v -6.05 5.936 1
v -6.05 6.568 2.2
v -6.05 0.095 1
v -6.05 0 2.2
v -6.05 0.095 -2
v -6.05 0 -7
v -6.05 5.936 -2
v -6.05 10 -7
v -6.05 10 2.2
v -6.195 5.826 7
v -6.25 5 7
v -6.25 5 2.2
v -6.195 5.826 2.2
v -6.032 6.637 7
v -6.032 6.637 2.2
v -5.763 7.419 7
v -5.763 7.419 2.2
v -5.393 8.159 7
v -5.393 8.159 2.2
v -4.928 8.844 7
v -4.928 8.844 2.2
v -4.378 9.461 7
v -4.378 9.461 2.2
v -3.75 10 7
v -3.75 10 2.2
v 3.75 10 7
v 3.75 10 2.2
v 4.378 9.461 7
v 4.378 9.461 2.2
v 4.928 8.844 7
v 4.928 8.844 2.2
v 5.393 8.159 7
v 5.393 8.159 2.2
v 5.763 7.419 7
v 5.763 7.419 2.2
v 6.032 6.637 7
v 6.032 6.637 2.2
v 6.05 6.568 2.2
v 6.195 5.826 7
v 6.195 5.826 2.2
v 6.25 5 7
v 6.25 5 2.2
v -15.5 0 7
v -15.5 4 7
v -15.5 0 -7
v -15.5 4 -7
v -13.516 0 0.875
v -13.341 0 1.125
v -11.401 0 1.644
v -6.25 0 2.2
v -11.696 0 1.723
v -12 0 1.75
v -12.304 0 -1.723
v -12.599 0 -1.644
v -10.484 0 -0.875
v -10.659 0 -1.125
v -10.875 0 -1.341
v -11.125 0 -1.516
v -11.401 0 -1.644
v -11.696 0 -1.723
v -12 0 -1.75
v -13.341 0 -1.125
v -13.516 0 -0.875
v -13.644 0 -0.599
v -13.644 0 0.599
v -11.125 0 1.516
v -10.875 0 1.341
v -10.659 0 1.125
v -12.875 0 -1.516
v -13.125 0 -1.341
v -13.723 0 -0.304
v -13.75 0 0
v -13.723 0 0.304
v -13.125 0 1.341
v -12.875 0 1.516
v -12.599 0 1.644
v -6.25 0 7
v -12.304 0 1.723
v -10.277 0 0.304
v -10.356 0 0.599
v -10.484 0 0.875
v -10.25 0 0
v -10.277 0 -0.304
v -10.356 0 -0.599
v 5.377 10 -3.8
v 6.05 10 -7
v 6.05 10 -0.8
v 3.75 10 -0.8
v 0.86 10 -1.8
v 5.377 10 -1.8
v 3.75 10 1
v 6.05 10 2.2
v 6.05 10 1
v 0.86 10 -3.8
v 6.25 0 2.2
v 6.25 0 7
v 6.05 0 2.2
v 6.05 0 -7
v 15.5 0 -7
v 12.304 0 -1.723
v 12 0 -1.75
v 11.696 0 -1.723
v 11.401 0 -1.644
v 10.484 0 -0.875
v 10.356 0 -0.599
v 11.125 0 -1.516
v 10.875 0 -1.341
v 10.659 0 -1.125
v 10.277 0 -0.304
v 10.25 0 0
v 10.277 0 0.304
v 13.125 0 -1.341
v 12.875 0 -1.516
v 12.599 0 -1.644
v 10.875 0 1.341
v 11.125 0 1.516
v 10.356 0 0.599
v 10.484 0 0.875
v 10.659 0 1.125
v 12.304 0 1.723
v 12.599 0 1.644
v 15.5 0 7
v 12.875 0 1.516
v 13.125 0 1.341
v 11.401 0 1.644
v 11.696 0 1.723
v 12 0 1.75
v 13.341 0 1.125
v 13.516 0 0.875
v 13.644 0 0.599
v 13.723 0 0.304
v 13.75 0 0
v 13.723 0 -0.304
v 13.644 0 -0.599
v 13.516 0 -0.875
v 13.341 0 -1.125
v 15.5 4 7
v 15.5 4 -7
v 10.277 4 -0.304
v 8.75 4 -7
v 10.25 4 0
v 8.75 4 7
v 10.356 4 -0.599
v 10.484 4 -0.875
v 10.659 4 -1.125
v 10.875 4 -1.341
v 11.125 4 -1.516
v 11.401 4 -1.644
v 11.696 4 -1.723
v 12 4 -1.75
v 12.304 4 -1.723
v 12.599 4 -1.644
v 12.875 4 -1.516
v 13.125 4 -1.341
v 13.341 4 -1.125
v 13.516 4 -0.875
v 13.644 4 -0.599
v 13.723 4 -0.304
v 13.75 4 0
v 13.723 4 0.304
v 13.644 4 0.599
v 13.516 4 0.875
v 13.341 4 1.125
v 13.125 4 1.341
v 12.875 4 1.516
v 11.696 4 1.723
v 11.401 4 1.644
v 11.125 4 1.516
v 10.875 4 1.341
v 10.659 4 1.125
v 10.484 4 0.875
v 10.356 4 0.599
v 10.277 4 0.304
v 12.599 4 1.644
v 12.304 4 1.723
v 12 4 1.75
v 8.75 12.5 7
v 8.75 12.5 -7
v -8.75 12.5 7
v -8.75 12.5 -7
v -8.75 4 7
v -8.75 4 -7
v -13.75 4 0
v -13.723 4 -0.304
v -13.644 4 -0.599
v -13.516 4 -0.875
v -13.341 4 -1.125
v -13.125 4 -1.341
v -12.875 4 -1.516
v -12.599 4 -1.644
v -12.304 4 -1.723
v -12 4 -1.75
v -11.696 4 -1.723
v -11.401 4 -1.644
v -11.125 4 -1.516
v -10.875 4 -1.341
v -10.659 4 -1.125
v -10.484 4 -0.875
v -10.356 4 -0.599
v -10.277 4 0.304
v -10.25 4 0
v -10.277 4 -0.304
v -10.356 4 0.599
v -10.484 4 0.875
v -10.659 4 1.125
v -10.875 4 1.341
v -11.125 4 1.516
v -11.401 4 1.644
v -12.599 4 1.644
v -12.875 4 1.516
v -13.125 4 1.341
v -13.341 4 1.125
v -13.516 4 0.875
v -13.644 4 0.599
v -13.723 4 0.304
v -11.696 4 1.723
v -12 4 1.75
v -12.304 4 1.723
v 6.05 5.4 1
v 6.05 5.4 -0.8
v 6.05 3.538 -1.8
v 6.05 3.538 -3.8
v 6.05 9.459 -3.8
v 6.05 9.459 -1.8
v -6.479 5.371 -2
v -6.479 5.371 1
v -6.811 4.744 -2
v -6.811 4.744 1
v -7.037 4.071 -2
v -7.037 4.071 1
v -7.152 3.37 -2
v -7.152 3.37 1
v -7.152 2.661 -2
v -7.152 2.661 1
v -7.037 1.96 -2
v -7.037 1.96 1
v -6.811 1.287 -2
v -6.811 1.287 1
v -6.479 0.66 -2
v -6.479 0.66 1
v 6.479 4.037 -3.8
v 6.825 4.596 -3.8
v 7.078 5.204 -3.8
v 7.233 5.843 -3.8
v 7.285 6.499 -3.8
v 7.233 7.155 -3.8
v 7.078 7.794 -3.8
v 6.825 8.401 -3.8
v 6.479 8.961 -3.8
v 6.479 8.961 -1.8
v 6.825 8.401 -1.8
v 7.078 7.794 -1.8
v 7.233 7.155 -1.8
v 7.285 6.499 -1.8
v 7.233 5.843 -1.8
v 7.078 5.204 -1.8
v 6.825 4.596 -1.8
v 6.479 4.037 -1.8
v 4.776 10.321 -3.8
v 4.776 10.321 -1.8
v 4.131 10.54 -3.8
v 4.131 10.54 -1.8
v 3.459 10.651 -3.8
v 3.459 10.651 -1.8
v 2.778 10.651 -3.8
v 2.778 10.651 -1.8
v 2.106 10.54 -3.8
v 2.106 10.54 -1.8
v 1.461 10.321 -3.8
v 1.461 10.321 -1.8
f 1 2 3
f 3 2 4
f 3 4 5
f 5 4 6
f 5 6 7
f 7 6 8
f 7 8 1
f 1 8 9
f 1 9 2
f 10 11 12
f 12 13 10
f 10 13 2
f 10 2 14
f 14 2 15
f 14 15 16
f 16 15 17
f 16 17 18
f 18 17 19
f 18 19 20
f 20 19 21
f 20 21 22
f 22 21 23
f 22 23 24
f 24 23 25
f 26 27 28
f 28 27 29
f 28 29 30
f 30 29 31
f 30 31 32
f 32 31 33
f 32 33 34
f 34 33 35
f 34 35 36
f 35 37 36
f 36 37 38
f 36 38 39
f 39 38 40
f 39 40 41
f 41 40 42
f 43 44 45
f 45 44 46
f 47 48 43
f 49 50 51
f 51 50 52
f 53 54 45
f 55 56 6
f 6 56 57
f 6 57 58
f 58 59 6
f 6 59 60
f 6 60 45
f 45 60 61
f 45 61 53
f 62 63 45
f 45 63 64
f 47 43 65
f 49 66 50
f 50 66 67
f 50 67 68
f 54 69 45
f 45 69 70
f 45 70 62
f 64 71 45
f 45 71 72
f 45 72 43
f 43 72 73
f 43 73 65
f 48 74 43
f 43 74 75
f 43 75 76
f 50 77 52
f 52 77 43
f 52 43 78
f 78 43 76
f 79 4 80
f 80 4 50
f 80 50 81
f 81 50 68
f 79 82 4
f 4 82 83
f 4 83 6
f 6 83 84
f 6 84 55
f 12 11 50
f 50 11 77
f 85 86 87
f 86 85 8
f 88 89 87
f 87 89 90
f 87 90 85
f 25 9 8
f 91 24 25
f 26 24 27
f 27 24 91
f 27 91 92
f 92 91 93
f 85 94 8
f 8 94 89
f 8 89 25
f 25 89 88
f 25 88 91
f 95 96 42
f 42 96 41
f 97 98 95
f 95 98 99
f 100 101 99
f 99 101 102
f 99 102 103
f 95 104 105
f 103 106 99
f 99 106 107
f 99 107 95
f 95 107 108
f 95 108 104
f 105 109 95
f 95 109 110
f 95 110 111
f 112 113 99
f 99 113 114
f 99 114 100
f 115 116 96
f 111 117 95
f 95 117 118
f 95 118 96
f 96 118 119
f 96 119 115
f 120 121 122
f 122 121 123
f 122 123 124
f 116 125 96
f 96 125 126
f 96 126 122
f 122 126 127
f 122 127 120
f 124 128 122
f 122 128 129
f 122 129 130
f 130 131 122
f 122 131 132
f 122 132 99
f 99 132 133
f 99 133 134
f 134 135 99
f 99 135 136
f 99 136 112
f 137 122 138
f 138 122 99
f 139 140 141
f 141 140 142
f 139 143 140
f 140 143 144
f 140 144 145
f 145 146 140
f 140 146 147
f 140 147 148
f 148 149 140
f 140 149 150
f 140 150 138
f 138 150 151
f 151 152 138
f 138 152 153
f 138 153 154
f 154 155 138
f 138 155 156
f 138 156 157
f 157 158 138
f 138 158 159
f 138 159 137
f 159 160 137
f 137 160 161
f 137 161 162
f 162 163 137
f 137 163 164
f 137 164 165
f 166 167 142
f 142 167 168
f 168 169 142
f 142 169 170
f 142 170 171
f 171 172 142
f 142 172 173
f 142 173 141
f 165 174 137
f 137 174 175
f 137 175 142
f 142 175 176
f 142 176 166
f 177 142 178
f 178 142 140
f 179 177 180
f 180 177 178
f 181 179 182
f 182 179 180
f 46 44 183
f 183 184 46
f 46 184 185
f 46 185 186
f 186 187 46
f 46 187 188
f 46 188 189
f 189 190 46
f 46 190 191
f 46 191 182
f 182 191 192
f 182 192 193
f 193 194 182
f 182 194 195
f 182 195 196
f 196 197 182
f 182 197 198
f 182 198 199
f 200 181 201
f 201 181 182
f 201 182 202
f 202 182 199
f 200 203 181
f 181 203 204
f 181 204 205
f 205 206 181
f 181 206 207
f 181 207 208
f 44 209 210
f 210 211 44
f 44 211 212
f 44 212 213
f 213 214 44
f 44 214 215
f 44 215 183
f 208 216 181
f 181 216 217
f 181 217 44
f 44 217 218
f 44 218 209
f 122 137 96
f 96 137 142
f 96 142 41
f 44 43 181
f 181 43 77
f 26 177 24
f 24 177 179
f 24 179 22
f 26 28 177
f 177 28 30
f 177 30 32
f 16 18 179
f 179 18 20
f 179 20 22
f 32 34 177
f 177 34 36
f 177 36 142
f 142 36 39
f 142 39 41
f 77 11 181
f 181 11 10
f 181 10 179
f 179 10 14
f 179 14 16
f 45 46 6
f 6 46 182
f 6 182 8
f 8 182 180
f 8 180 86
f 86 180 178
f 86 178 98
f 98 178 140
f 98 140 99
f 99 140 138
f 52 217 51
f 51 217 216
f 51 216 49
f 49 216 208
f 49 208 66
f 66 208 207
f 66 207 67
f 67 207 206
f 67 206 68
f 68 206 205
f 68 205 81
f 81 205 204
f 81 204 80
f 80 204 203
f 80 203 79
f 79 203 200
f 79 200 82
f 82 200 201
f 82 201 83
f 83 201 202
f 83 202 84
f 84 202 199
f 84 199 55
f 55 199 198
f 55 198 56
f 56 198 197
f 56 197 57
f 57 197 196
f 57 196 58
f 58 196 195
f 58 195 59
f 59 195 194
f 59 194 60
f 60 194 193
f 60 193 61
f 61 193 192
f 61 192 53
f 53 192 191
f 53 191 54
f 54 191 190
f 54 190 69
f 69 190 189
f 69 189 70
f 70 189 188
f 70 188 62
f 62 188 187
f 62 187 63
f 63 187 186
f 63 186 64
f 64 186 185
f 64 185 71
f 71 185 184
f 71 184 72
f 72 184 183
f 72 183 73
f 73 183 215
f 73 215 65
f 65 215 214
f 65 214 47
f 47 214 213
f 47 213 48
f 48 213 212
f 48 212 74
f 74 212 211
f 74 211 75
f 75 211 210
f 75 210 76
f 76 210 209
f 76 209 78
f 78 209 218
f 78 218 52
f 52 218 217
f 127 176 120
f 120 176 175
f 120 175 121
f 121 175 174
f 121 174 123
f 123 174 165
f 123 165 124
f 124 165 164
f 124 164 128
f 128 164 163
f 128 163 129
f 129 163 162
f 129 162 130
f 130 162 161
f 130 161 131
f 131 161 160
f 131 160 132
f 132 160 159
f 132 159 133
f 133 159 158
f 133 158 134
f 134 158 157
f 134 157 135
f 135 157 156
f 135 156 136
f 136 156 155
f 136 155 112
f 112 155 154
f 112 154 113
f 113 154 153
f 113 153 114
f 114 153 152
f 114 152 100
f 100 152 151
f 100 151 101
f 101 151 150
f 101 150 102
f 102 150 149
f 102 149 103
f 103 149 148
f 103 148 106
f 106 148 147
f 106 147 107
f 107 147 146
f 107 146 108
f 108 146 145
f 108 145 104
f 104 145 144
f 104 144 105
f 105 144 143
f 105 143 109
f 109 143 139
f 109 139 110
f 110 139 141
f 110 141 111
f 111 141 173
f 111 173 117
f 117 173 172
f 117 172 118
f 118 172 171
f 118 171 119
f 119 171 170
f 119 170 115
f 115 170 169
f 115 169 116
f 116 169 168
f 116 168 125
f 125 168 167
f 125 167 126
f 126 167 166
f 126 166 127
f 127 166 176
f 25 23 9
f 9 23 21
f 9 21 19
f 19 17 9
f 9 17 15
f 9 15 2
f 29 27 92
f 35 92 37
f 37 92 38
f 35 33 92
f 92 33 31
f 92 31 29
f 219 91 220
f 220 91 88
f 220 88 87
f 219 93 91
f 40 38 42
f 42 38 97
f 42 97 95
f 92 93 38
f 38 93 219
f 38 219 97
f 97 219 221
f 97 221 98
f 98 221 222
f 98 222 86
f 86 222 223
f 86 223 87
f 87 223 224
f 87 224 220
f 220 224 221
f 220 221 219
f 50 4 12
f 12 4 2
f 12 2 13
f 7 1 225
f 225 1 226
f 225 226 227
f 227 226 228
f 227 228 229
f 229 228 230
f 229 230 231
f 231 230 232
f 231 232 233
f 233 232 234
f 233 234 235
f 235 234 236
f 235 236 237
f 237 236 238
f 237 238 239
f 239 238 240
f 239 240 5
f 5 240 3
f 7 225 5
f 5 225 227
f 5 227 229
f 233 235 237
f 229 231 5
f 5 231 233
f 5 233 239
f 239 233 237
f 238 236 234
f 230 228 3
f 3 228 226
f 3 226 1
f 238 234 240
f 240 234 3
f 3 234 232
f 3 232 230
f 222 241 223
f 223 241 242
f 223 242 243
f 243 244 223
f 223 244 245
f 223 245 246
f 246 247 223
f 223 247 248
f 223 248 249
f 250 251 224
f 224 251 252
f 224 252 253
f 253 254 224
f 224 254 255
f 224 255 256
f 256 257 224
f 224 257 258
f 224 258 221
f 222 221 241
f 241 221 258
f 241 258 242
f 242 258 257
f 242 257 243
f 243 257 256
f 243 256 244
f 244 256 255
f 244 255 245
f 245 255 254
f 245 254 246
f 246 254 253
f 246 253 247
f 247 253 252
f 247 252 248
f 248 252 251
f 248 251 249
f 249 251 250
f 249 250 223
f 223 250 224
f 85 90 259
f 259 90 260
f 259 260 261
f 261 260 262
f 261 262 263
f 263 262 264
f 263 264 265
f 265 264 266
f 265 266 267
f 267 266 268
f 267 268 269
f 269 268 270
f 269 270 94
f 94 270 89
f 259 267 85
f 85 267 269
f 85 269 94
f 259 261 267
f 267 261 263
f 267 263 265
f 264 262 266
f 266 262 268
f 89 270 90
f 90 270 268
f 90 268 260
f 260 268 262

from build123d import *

# Parameters (mm, degrees)
BOSS_EXTRU_1_DEPTH      = 7
ENL_V_MAT_EXTRU_1_DEPTH = 1.5
ESQUISSE3_R             = 1.75
ENL_V_MAT_EXTRU_2_DEPTH = 8.5
ESQUISSE4_W             = 12.5
ESQUISSE4_H             = 5
ENL_V_MAT_EXTRU_3_DEPTH = 9.2
BOSS_EXTRU_2_START      = 1.2
BOSS_EXTRU_2_DEPTH      = 1.8
BOSS_EXTRU_3_REACH      = 23.107
ESQUISSE8_W             = 0.2
ESQUISSE8_H             = 9.2
ESQUISSE6_R             = 4.379651067
ENL_V_MAT_EXTRU_4_DEPTH = 3
ENL_V_START             = 1
ESQUISSE7_R             = 4.166394869
ENL_V_MAT_EXTRU_5_DEPTH = 2
BOSS_EXTRU_4_START      = 1.5
ESQUISSE9_R             = 1.75
BOSS_EXTRU_4_DEPTH      = 1.5


with BuildPart() as part:
    # Esquisse1 → Boss.-Extru.1 (new, symmetric)
    with BuildSketch(Plane.XY):
        with BuildLine():
            Line((-15.5, 0), (-6.25, 0))
            Line((-6.25, 0), (-6.25, 5))
            ThreePointArc((-6.25, 5), (-5.590169944, 7.795084972), (-3.75, 10))
            Line((-3.75, 10), (3.75, 10))
            ThreePointArc((3.75, 10), (5.590169944, 7.795084972), (6.25, 5))
            Line((6.25, 5), (6.25, 0))
            Line((6.25, 0), (15.5, 0))
            Line((15.5, 0), (15.5, 4))
            Line((15.5, 4), (8.75, 4))
            Line((8.75, 4), (8.75, 12.5))
            Line((8.75, 12.5), (-8.75, 12.5))
            Line((-8.75, 12.5), (-8.75, 4))
            Line((-8.75, 4), (-15.5, 4))
            Line((-15.5, 4), (-15.5, 0))
        make_face()
    extrude(amount=BOSS_EXTRU_1_DEPTH, both=True)

    # Esquisse2 → Enlèv. mat.-Extru.1 (cut)
    with BuildSketch(Plane(origin=(0, 4, 0), x_dir=(1, 0, 0), z_dir=(0, 1, 0))):
        Polygon((-9.1, -1.674315781), (-9.1, 1.674315781), (-12, 3.348631561), (-14.9, 1.674315781), (-14.9, -1.674315781), (-12, -3.348631561), align=None)
        Polygon((9.1, -1.674315781), (12, -3.348631561), (14.9, -1.674315781), (14.9, 1.674315781), (12, 3.348631561), (9.1, 1.674315781), align=None)
    extrude(amount=-ENL_V_MAT_EXTRU_1_DEPTH, mode=Mode.SUBTRACT)

    # Esquisse3 → Enlèv. mat.-Extru.2 (cut)
    with BuildSketch(Plane(origin=(0, 2.5, 0), x_dir=(1, 0, 0), z_dir=(0, 1, 0))):
        with Locations(Location((-12, 0, 0), (0, 0, 270))):
            Circle(ESQUISSE3_R)
        with Locations(Location((12, 0, 0), (0, 0, 270))):
            Circle(ESQUISSE3_R)
    extrude(amount=-ENL_V_MAT_EXTRU_2_DEPTH, mode=Mode.SUBTRACT)

    # Esquisse4 → Enlèv. mat.-Extru.3 (cut)
    with BuildSketch(Plane(origin=(0, 0, -7), x_dir=(-1, 0, 0), z_dir=(0, 0, -1))):
        with Locations((0, 7.5)):
            Rectangle(ESQUISSE4_W, ESQUISSE4_H)
    extrude(amount=-ENL_V_MAT_EXTRU_3_DEPTH, mode=Mode.SUBTRACT)

    # Esquisse5 → Boss.-Extru.2 (add)
    with BuildSketch(Plane(origin=(0, 0, 2.2), x_dir=(-1, 0, 0), z_dir=(0, 0, -1)).offset(BOSS_EXTRU_2_START)):
        Polygon((-3.75, 10), (-6.25, 5), (-6.25, 10), align=None)
    extrude(amount=BOSS_EXTRU_2_DEPTH)

    # Boss.-Extru.3: up to this face of the body (flat: up to its plane)
    boss_extru_3_end = Plane(part.part.faces().sort_by_distance((-0.153583618, 10, -0.75665529))[0])
    # Esquisse8 → Boss.-Extru.3 (add, up to the picked face)
    with BuildSketch(Plane.XZ, mode=Mode.PRIVATE) as boss_extru_3_sk1:
        with Locations((6.15, -2.4)):
            Rectangle(ESQUISSE8_W, ESQUISSE8_H)
    boss_extru_3_tool1 = split(extrude(boss_extru_3_sk1.sketch, amount=-BOSS_EXTRU_3_REACH, mode=Mode.PRIVATE), bisect_by=boss_extru_3_end, keep=Keep.BOTH, mode=Mode.PRIVATE)
    # Esquisse8 → Boss.-Extru.3 (add, up to the picked face)
    with BuildSketch(Plane.XZ, mode=Mode.PRIVATE) as boss_extru_3_sk2:
        with Locations((-6.15, -2.4)):
            Rectangle(ESQUISSE8_W, ESQUISSE8_H)
    boss_extru_3_tool2 = split(extrude(boss_extru_3_sk2.sketch, amount=-BOSS_EXTRU_3_REACH, mode=Mode.PRIVATE), bisect_by=boss_extru_3_end, keep=Keep.BOTH, mode=Mode.PRIVATE)
    add(boss_extru_3_tool1.solids().sort_by(Axis((6.15, 0, -2.4), (0, 1, 0)))[0])
    add(boss_extru_3_tool2.solids().sort_by(Axis((-6.15, 0, -2.4), (0, 1, 0)))[0])

    # Esquisse6 → Enlèv. mat.-Extru.4 (cut)
    with BuildSketch(Plane.XY.offset(1)):
        with Locations((-2.786650878, 3.015494516)):
            Circle(ESQUISSE6_R)
    extrude(amount=-ENL_V_MAT_EXTRU_4_DEPTH, mode=Mode.SUBTRACT)

    # Esquisse7 → Enlèv. mat.-Extru.5 (cut)
    with BuildSketch(Plane(origin=(0, 0, -0.8), x_dir=(-1, 0, 0), z_dir=(0, 0, -1)).offset(ENL_V_START)):
        with Locations((-3.11839503, 6.498808114)):
            Circle(ESQUISSE7_R)
    extrude(amount=ENL_V_MAT_EXTRU_5_DEPTH, mode=Mode.SUBTRACT)

    # Esquisse9 → Boss.-Extru.4 (add)
    # profile 1 of 2: a face of its own
    with BuildSketch(Plane(origin=(0, 2.5, 0), x_dir=(1, 0, 0), z_dir=(0, 1, 0)).offset(BOSS_EXTRU_4_START)):
        Polygon((9.1, 1.674315781), (9.1, -1.674315781), (12, -3.348631561), (14.9, -1.674315781), (14.9, 1.674315781), (12, 3.348631561), align=None)
        with Locations(Location((12, 0, 0), (0, 0, 270))):
            Circle(ESQUISSE9_R, mode=Mode.SUBTRACT)
    # profile 2 of 2: a face of its own
    with BuildSketch(Plane(origin=(0, 2.5, 0), x_dir=(1, 0, 0), z_dir=(0, 1, 0)).offset(BOSS_EXTRU_4_START)):
        Polygon((-12, -3.348631561), (-9.1, -1.674315781), (-9.1, 1.674315781), (-12, 3.348631561), (-14.9, 1.674315781), (-14.9, -1.674315781), align=None)
        with Locations(Location((-12, 0, 0), (0, 0, 270))):
            Circle(ESQUISSE9_R, mode=Mode.SUBTRACT)
    extrude(amount=-BOSS_EXTRU_4_DEPTH)


solid = part.part
